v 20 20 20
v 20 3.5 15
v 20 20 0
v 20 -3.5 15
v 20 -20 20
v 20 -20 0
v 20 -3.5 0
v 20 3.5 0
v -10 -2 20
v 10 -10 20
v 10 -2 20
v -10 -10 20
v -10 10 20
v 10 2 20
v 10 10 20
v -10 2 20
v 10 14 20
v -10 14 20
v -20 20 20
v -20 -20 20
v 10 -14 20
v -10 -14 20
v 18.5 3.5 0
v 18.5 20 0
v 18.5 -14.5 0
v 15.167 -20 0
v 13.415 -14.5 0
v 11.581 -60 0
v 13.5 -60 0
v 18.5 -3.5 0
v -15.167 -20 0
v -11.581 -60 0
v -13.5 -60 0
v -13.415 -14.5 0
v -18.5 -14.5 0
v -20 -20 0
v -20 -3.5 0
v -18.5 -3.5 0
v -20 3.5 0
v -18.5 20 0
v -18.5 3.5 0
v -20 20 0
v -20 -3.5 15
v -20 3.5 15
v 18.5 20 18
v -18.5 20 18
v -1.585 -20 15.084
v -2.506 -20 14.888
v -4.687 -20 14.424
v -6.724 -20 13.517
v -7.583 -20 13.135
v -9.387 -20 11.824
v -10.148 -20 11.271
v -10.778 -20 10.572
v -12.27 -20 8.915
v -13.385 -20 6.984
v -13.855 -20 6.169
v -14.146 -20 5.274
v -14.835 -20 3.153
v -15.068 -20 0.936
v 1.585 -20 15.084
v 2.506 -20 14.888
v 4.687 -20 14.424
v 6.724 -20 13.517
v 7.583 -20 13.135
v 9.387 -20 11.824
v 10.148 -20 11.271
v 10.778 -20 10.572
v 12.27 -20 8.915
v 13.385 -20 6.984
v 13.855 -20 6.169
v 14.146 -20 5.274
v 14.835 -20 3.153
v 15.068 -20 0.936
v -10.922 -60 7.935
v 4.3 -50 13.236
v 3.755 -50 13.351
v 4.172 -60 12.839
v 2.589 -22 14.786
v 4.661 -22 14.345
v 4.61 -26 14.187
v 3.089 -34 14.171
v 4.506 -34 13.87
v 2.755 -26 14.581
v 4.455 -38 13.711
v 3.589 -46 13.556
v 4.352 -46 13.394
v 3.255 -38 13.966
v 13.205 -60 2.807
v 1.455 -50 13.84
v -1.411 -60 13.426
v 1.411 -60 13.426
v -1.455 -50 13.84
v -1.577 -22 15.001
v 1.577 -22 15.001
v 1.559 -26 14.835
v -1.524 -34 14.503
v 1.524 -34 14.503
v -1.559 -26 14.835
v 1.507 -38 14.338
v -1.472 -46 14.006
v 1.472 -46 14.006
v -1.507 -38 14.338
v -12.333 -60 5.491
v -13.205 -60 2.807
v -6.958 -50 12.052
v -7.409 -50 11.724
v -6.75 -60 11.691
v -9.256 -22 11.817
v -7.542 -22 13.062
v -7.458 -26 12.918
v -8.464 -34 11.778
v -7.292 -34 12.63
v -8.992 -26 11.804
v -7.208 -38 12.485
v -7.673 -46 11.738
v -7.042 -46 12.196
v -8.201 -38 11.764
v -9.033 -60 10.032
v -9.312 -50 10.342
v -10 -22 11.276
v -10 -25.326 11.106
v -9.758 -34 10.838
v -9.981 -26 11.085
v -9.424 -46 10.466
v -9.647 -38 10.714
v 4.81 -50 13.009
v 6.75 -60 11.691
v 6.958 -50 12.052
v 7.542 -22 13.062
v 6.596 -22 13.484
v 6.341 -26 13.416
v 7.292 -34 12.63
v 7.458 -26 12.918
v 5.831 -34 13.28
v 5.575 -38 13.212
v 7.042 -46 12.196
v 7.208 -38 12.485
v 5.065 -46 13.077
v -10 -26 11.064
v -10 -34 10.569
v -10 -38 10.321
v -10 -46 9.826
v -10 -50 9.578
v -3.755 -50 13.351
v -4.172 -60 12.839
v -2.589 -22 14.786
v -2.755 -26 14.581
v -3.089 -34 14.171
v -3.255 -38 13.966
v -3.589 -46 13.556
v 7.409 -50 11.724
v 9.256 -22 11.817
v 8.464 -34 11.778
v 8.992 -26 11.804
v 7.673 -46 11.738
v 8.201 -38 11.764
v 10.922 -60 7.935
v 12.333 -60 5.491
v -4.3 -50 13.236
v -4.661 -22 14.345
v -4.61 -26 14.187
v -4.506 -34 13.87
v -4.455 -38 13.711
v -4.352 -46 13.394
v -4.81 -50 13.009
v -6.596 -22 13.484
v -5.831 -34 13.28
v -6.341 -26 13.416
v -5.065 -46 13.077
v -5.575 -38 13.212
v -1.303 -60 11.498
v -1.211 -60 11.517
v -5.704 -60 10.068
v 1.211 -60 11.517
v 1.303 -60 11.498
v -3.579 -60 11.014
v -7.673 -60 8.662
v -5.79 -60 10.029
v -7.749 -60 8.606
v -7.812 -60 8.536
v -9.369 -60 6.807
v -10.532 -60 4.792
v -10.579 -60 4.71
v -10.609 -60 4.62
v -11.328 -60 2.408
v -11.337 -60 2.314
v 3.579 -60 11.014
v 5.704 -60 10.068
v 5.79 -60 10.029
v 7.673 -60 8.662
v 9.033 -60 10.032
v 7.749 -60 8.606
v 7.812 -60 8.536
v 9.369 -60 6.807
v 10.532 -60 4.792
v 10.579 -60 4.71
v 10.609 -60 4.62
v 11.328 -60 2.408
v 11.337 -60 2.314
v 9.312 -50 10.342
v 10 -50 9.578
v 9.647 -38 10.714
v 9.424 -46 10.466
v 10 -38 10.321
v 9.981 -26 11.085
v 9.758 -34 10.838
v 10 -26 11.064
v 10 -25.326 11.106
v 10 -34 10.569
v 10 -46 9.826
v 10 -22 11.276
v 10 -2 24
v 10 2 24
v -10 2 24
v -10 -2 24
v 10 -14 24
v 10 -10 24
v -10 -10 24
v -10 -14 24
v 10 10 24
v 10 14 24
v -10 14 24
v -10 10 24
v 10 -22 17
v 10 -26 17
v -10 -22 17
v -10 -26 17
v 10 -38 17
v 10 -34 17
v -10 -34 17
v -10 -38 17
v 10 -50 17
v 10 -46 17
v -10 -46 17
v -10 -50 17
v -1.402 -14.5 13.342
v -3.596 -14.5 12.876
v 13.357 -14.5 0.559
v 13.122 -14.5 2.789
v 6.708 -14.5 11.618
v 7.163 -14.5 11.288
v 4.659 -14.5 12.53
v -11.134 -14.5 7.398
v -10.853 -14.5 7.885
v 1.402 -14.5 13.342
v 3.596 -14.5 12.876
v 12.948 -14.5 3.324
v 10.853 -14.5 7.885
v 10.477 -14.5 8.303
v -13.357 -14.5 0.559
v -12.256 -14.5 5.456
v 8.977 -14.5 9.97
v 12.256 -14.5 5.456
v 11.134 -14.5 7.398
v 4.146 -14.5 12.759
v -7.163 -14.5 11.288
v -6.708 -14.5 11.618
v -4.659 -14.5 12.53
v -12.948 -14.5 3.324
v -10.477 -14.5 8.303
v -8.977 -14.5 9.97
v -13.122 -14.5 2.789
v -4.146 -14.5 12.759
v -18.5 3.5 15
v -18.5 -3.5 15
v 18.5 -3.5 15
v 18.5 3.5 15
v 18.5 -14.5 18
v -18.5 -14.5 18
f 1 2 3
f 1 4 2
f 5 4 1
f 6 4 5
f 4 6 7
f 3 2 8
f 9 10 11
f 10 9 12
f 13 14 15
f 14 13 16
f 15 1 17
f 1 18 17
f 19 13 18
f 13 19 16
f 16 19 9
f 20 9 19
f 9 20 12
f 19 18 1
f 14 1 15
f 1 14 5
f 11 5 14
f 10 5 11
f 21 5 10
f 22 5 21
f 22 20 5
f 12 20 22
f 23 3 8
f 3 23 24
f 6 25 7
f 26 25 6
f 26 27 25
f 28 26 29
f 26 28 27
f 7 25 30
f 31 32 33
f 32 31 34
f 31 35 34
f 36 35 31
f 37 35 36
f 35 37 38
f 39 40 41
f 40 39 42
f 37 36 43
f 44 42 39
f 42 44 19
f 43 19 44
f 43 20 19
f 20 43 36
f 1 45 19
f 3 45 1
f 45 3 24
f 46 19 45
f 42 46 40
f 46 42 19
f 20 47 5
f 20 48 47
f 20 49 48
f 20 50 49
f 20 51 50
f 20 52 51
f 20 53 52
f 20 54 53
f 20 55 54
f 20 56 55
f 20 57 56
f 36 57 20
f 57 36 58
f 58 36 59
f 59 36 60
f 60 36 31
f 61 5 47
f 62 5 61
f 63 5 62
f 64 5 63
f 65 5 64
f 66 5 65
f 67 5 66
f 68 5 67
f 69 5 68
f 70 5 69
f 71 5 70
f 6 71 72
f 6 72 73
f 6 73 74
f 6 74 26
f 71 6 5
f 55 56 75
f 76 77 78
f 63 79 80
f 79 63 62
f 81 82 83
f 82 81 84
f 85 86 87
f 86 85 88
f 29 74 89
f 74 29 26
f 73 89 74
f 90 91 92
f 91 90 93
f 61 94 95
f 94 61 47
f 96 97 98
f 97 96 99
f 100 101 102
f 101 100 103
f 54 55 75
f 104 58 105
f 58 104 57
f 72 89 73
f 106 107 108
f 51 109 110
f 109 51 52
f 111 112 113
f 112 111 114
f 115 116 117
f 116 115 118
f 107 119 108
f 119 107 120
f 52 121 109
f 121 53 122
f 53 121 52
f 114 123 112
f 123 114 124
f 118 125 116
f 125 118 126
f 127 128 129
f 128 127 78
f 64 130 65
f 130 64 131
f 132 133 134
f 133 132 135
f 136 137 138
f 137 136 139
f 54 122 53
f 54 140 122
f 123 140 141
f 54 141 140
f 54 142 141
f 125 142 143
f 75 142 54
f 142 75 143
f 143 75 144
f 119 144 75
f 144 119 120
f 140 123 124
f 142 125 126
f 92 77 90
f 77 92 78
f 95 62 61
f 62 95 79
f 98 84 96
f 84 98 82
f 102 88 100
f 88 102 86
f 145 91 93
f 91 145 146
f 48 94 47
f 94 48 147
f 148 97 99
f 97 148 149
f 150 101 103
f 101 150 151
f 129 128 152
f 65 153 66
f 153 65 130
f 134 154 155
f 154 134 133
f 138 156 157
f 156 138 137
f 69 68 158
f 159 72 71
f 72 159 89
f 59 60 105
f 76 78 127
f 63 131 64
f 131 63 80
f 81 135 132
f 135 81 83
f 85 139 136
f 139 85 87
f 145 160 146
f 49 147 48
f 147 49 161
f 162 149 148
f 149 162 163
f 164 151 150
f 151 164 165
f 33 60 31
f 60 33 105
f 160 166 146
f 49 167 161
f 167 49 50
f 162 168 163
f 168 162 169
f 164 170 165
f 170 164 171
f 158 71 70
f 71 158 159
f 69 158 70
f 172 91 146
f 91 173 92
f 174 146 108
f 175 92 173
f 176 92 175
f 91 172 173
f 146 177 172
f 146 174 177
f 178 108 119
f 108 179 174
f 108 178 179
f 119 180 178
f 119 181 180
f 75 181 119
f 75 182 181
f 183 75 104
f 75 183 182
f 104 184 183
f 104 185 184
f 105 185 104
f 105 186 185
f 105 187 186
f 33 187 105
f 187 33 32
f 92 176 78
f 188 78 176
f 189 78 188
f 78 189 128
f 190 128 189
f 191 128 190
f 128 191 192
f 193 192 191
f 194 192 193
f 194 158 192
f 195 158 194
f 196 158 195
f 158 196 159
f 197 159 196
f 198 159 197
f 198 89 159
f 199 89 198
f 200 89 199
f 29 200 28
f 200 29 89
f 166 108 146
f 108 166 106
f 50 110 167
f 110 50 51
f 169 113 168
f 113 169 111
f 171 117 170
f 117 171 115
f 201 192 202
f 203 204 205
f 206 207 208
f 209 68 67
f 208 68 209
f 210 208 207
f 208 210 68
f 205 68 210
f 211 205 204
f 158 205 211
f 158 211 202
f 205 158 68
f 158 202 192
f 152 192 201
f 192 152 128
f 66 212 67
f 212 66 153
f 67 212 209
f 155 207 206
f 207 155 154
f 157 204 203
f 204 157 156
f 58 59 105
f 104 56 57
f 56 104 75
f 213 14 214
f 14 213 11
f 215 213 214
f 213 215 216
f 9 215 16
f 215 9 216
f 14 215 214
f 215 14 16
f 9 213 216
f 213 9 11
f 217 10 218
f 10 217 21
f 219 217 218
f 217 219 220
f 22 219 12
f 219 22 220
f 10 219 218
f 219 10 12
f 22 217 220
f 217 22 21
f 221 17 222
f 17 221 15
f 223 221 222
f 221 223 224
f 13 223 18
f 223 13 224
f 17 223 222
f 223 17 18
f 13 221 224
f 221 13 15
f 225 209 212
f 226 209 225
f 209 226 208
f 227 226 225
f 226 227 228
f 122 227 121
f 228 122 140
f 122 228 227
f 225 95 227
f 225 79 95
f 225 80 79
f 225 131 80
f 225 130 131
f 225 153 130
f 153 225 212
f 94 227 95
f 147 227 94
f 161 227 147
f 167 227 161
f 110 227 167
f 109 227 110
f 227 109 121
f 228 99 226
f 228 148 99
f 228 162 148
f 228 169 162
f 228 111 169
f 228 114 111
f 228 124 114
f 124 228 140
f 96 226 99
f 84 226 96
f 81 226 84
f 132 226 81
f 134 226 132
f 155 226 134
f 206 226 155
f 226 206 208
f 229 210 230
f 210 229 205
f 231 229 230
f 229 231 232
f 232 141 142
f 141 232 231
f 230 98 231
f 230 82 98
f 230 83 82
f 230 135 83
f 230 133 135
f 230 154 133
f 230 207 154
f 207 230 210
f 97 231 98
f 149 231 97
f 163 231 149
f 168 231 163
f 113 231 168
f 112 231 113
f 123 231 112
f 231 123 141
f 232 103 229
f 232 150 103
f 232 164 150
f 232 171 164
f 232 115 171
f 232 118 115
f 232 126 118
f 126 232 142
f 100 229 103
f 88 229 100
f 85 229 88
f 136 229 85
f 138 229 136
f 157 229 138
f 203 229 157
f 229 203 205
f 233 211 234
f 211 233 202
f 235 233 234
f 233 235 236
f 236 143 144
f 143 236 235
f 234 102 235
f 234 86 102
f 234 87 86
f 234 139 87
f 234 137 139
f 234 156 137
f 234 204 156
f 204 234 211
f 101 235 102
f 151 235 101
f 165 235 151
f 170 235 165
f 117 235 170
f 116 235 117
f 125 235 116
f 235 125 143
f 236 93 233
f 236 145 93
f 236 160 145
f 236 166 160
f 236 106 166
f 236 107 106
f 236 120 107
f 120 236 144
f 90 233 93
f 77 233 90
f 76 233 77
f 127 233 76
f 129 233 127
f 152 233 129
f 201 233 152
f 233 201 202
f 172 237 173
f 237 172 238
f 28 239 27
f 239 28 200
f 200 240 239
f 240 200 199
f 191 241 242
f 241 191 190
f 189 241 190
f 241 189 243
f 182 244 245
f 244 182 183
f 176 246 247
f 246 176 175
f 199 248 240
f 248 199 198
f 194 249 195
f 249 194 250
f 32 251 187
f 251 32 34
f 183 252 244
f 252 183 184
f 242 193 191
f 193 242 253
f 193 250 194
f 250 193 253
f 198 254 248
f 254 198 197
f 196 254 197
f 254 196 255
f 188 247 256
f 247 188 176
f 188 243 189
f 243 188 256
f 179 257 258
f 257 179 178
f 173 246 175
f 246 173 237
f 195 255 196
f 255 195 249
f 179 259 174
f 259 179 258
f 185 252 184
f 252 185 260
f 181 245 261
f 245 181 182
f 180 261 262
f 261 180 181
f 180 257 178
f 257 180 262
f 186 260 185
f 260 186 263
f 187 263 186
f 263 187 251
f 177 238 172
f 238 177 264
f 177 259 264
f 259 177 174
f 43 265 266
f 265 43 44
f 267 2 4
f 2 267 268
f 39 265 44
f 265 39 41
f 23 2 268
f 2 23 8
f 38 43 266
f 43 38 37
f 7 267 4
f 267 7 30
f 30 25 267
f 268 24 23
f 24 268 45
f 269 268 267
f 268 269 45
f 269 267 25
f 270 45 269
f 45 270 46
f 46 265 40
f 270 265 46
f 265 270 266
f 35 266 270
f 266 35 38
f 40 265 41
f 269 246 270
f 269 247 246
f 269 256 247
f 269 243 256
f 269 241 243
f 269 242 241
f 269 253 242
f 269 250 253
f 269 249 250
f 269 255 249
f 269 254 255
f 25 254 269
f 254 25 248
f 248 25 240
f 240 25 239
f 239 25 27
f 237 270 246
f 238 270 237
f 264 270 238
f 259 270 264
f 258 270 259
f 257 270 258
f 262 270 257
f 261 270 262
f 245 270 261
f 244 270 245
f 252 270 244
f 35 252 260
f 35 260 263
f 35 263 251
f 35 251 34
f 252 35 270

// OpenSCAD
difference() {
    union() {
        translate([-20,-20,0])cube([40,40,20]);
        rotate([90,0,0]) cylinder(60,32/2,27/2);
        translate([-10,-2,0]) cube([20,4,24]);
                translate([-10,-14,0]) cube([20,4,24]);
                translate([-10,+10,0]) cube([20,4,24]);
                translate([-10,-26,0]) cube([20,4,17]);
                translate([-10,-38,0]) cube([20,4,17]);
                translate([-10,-50,0]) cube([20,4,17]);
    }
    rotate([90,0,0]) cylinder(62,28/2,23/2);
    translate([-50/2,-7/2,-15]) cube([50,7,30]);
    translate([-37/2,-37/2+4,-4]) cube([37,37,22]);
    translate([-100,-100,-200])cube(200);
}
